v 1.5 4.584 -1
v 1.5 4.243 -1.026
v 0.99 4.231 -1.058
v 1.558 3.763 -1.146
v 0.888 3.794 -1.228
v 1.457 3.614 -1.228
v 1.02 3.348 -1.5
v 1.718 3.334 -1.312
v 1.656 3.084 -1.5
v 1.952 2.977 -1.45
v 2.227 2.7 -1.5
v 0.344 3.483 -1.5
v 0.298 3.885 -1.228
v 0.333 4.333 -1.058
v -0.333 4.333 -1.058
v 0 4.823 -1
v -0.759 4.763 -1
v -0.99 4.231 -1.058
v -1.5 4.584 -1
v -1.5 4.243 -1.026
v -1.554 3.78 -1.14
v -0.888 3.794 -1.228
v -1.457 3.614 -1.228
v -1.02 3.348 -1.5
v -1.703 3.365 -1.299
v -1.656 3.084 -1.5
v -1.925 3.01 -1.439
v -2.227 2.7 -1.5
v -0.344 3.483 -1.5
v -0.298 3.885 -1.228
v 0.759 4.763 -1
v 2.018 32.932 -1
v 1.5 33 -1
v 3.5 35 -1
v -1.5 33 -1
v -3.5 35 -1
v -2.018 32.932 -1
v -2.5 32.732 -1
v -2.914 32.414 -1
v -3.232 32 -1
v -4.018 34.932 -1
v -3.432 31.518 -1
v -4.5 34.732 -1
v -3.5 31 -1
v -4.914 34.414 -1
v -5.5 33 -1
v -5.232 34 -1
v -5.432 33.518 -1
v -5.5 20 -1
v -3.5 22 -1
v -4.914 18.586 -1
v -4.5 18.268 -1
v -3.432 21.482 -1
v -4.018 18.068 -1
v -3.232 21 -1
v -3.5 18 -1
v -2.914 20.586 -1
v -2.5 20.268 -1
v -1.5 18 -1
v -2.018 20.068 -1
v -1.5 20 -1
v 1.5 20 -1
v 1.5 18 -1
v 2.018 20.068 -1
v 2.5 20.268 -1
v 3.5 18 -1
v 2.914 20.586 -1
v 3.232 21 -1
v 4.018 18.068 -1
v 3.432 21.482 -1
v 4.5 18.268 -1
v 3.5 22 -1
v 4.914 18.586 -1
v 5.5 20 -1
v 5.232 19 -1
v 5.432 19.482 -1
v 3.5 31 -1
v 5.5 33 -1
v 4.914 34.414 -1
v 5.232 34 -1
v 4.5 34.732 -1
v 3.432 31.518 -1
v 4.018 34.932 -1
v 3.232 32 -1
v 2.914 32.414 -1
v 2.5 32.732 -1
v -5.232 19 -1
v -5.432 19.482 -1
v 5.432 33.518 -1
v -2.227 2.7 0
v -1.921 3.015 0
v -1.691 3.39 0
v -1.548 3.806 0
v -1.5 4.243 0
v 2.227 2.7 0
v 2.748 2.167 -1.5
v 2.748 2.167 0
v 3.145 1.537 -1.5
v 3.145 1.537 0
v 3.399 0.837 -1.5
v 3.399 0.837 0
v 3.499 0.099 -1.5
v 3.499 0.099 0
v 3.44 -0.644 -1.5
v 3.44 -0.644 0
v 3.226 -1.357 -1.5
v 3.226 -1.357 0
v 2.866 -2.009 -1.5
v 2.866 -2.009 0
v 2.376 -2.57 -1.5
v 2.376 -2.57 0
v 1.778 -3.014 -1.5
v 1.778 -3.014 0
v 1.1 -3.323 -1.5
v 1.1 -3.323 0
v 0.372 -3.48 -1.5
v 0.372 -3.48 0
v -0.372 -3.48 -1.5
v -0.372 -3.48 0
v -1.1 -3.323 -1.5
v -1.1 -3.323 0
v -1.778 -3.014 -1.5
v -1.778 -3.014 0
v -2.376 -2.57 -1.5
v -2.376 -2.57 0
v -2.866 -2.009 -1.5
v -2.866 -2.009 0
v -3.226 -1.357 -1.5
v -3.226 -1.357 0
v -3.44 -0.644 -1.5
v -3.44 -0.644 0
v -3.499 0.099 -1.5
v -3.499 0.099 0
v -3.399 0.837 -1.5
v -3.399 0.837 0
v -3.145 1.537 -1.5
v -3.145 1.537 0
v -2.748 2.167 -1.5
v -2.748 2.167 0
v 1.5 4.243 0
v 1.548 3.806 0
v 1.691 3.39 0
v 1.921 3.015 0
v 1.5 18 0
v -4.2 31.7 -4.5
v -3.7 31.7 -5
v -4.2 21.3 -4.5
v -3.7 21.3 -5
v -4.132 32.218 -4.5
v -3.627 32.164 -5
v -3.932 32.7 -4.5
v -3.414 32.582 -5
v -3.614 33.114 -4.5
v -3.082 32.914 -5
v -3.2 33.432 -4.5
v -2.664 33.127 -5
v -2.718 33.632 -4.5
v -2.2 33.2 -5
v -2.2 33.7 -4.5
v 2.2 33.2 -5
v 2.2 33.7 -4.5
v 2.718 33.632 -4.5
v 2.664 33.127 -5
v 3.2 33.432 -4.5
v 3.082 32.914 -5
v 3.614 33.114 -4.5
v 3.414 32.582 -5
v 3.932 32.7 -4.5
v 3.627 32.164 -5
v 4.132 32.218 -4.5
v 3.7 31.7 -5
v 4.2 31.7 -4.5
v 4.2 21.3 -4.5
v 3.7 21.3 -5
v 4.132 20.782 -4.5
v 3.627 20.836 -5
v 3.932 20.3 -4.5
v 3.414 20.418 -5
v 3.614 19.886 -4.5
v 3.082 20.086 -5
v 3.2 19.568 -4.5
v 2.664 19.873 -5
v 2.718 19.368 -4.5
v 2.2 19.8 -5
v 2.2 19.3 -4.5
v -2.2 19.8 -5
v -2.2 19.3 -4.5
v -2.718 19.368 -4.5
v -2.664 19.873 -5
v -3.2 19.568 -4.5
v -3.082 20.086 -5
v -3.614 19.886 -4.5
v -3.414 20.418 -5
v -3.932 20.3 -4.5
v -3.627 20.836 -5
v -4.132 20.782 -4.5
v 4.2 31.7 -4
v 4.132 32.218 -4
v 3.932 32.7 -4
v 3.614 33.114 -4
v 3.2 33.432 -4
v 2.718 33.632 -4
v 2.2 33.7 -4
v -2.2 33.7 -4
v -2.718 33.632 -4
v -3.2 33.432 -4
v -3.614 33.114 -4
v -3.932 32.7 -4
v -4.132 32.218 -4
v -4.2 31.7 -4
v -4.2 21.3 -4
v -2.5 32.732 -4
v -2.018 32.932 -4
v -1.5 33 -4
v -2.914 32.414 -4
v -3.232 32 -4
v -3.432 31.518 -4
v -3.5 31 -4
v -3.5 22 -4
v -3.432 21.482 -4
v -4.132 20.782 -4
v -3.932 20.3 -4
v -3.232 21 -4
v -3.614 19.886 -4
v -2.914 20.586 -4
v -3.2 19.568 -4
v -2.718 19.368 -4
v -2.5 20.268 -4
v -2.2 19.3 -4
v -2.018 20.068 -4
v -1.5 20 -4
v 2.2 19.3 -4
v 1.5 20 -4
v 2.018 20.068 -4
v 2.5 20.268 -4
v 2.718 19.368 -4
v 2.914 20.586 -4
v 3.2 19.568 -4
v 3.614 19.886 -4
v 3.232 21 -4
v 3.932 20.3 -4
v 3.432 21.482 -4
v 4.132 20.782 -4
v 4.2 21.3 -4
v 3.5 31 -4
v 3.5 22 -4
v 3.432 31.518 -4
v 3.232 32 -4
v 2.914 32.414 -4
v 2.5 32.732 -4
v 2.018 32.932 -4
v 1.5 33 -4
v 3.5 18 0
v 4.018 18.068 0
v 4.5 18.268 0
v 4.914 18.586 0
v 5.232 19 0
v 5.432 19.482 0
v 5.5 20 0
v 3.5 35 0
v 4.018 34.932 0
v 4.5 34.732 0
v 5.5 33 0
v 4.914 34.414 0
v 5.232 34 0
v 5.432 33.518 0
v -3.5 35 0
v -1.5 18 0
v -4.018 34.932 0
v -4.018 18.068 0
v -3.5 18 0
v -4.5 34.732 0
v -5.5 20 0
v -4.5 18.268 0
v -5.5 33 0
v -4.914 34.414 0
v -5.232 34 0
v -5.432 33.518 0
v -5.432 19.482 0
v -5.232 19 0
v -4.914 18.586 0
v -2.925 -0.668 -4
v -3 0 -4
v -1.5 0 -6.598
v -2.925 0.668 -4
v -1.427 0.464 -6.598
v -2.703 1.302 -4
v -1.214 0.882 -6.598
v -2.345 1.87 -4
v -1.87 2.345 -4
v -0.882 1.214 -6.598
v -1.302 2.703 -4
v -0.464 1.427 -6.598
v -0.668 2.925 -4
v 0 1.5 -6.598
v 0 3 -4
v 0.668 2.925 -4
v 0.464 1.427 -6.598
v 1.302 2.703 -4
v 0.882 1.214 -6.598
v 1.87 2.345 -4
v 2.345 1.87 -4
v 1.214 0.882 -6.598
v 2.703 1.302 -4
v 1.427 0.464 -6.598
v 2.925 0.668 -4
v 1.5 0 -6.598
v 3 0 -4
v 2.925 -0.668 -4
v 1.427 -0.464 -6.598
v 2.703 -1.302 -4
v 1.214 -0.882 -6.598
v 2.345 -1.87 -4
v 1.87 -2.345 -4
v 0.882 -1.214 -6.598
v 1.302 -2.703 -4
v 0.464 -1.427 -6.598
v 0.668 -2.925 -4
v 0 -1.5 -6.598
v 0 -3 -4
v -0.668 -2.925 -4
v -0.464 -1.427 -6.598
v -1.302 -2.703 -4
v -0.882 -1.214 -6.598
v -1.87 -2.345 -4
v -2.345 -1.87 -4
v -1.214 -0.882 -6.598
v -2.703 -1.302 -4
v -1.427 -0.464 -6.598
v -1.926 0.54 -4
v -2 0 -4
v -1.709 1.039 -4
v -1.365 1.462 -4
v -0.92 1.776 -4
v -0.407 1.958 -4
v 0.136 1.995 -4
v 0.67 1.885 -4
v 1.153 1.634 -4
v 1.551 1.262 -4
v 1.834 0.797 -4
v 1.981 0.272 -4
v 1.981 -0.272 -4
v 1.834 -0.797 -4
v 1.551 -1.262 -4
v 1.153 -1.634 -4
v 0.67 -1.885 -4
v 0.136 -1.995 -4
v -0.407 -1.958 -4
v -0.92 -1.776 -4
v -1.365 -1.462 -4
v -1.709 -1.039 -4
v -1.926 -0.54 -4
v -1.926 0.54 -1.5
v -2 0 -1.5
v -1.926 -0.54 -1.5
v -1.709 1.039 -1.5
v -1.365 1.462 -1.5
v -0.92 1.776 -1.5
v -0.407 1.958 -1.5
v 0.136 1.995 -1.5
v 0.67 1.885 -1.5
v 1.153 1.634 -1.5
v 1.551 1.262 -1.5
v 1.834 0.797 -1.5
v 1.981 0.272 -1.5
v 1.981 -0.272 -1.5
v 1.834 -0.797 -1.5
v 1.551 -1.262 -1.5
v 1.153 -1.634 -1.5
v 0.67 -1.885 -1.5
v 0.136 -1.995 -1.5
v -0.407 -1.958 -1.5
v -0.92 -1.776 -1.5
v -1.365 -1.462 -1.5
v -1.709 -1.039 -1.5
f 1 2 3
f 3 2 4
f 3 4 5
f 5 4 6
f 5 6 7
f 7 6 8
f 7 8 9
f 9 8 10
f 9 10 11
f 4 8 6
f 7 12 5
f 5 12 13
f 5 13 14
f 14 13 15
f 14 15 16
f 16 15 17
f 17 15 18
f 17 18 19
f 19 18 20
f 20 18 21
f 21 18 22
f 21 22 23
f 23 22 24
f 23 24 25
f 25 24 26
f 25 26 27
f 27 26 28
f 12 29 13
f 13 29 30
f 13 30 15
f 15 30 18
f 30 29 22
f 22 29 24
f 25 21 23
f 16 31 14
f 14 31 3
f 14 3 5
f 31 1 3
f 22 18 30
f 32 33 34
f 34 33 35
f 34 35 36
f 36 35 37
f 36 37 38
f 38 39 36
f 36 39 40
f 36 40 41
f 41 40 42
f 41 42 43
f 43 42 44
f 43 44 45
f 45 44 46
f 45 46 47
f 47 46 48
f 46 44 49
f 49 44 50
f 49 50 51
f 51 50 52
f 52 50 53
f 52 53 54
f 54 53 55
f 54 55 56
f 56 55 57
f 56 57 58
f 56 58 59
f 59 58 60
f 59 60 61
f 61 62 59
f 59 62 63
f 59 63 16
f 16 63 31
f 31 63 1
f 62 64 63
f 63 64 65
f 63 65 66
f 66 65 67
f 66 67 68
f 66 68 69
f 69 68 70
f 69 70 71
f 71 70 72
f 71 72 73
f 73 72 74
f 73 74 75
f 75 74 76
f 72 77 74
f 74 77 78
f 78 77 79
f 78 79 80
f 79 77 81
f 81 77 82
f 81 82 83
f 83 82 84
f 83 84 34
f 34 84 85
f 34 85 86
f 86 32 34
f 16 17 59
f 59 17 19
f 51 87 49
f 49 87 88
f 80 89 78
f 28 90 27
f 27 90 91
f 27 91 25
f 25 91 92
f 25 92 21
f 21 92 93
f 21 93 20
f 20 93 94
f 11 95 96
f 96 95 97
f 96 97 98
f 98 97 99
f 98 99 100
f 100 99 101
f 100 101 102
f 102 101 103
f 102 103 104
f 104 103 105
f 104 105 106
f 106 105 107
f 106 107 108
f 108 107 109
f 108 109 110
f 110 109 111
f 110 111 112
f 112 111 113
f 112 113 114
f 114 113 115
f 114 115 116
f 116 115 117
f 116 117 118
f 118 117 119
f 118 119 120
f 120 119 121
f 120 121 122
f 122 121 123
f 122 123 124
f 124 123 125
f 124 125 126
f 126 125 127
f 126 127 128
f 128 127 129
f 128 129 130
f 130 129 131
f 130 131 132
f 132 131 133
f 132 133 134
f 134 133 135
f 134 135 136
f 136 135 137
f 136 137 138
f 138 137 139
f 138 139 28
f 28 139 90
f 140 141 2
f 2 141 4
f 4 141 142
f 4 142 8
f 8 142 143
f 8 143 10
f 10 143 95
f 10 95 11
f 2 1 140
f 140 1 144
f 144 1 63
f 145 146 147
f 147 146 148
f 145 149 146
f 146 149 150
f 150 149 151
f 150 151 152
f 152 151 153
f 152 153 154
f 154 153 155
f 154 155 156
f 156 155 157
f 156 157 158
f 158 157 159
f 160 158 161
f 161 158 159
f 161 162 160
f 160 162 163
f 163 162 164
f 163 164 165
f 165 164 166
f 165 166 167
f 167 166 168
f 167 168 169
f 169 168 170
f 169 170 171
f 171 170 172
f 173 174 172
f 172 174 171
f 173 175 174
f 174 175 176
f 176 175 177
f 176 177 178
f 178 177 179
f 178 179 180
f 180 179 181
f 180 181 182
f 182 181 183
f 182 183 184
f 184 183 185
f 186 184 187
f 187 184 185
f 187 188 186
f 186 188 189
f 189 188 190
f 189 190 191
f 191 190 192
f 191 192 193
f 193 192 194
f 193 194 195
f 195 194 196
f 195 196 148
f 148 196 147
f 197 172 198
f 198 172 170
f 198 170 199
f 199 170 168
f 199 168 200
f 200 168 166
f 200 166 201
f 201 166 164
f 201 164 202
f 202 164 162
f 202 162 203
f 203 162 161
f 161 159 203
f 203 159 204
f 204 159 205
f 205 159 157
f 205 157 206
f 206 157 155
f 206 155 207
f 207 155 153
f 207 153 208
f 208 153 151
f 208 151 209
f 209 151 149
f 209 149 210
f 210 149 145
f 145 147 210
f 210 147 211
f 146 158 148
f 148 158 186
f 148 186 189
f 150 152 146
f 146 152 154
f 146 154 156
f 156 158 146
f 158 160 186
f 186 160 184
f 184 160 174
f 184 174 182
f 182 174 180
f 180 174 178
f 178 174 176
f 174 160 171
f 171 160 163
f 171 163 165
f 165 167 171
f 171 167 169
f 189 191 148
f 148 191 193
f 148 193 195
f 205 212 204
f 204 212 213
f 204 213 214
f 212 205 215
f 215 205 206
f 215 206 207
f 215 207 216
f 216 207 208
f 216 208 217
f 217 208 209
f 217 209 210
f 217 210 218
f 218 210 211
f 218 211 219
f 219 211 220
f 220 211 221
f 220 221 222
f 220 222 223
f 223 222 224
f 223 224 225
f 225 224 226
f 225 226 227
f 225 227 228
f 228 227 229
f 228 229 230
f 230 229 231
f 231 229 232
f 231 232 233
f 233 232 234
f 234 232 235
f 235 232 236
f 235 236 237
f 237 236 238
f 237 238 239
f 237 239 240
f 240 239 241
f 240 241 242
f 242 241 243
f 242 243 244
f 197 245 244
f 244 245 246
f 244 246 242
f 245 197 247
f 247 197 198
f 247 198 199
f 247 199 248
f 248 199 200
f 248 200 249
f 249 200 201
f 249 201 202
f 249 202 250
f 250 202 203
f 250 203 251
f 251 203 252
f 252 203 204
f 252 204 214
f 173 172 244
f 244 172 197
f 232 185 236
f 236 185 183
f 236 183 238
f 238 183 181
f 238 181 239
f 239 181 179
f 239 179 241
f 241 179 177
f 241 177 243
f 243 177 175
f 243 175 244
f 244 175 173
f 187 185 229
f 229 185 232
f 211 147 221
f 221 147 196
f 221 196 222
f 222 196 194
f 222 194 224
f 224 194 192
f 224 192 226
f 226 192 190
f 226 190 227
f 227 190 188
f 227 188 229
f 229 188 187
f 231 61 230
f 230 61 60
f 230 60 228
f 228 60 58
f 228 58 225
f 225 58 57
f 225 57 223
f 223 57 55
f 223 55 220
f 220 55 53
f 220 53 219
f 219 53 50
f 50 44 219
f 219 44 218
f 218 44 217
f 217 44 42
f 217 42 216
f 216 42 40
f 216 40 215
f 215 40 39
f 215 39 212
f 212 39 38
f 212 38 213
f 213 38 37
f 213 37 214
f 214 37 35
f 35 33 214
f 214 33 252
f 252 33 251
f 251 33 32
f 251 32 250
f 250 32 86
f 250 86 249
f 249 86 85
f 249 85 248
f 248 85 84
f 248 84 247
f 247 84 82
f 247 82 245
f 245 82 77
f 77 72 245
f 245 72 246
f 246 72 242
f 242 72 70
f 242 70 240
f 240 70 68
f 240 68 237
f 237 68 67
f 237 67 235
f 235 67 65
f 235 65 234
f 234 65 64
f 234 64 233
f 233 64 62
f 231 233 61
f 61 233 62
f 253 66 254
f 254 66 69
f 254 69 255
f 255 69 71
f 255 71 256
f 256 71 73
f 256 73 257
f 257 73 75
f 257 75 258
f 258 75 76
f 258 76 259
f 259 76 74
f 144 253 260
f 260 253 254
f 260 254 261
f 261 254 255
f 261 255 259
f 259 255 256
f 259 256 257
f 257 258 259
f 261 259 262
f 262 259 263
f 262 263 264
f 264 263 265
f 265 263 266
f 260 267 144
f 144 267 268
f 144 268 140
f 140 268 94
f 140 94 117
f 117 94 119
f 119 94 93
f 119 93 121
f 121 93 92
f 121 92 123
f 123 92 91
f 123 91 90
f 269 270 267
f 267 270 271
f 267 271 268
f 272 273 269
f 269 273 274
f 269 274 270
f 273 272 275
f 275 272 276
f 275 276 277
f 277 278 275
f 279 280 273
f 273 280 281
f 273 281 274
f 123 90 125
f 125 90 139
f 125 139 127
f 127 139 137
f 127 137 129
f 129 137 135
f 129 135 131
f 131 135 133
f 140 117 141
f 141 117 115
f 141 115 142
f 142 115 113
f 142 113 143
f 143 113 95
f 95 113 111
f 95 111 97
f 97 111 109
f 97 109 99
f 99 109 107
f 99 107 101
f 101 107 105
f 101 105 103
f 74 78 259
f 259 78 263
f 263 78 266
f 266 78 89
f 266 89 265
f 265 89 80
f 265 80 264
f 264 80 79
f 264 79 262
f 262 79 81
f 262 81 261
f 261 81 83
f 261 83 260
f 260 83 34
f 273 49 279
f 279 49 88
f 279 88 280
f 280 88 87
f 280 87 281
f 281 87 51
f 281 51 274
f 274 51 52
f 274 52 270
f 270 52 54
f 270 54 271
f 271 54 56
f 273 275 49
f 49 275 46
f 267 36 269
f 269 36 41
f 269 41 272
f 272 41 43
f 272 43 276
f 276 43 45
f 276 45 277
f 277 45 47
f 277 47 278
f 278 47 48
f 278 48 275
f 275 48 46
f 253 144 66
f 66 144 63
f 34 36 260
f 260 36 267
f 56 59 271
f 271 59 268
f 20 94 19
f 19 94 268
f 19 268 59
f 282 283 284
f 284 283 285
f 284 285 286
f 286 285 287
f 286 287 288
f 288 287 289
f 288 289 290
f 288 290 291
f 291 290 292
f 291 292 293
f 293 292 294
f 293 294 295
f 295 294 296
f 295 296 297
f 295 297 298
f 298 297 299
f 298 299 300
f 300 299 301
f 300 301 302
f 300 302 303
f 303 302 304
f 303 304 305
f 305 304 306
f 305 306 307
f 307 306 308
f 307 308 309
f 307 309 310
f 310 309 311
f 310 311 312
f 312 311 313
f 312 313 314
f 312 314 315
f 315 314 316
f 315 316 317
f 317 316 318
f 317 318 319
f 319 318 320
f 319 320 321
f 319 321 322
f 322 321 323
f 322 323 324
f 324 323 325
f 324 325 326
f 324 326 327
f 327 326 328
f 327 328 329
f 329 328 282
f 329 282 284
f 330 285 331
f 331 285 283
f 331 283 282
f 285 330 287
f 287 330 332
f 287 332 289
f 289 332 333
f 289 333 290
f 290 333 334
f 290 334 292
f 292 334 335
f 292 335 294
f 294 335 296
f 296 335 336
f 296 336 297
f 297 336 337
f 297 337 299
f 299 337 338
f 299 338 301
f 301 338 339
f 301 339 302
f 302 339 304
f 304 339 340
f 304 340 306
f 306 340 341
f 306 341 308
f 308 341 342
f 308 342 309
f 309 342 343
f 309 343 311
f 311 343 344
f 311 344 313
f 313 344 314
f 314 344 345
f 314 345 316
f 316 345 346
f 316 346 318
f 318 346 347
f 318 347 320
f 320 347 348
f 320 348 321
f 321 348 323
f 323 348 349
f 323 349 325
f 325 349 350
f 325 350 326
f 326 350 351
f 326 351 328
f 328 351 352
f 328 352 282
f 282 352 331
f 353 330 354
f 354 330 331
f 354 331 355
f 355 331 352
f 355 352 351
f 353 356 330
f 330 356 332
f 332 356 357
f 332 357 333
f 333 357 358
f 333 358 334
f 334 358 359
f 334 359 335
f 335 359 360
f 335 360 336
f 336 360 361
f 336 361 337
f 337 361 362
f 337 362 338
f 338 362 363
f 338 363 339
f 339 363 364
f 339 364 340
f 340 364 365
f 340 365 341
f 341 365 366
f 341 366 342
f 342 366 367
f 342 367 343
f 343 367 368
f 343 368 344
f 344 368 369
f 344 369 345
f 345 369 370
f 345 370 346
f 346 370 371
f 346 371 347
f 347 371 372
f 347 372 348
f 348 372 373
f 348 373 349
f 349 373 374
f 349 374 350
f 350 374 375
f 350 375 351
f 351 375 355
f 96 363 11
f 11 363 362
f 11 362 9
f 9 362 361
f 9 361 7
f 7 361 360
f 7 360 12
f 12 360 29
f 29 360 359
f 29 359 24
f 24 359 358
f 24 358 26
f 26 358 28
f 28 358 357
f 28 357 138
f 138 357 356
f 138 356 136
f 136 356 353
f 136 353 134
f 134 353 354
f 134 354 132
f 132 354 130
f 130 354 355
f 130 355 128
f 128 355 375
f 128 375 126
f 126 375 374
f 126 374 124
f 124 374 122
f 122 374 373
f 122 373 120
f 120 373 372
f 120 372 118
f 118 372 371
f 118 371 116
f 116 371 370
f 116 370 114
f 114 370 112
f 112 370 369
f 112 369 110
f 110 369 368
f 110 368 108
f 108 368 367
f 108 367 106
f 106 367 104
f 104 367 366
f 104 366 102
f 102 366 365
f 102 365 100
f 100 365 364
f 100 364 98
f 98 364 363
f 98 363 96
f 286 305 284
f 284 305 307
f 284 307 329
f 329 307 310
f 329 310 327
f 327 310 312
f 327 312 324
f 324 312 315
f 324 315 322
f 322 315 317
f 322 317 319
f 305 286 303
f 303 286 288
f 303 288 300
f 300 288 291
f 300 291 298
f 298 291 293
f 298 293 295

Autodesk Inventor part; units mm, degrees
ref_plane "YZ Plane" through (0, 0, 0) normal (1, 0, 0) x (0, 1, 0)
ref_plane "XZ Plane" through (0, 0, 0) normal (0, 1, 0) x (-1, 0, 0)
ref_plane "XY Plane" through (0, 0, 0) normal (0, 0, 1) x (1, 0, 0)
sketch "Sketch1" plane through (0, 0, 0) normal (0, 1, 0) x (-1, 0, 0)
  line L0 (0, 0) -> (3.5, 0)
  line L1 (3.5, 0) -> (3.5, -1.5)
  line L2 (3.5, -1.5) -> (2, -1.5)
  line L3 (2, -1.5) -> (2, -4)
  line L4 (2, -4) -> (3, -4)
  line L5 (3, -4) -> (1.5, -6.5981)
  line L6 (1.5, -6.5981) -> (0, -6.5981)
  line L7 (0, -6.5981) -> (0, 0)
  line L8 (0, -7.9177) -> (0, 1.3196) projected
  dimension "d0" = 3.5
  dimension "d1" = 1.5
  dimension "d3" = 2.5
  dimension "d4" = 2
  dimension "d5" = 1
  dimension "d6" = 1.5
  dimension "d7" = 60
revolve "Revolution1" add sketch "Sketch1" angle 360 about axis through (0, 0, -10) along (0, 0, 1)
sketch "Sketch2" plane through (0, 0, 0) normal (0, 0, 1) x (1, 0, 0)
  circle A0 centre (0, 0) radius 3.5 construction
  line L0 (-1.5, 0) -> (1.5, 0)
  line L1 (1.5, 0) -> (1.5, 18)
  line L2 (1.5, 18) -> (-1.5, 18)
  line L3 (-1.5, 18) -> (-1.5, 0)
  line L4 (-5.5, 18) -> (5.5, 18)
  line L5 (5.5, 18) -> (5.5, 35)
  line L6 (5.5, 35) -> (-5.5, 35)
  line L7 (-5.5, 35) -> (-5.5, 18)
  point P0 (0, 18)
  dimension "d9" = 3
  dimension "d10" = 18
  dimension "d11" = 11
  dimension "d12" = 17
extrude "Extrusion1" add sketch "Sketch2" against normal blind 1
sketch "Sketch3" plane through (0, 0, -1) normal (0, 0, -1) x (-1, 0, 0)
  line L0 (3.5, 33) -> (-3.5, 33)
  line L1 (-3.5, 33) -> (-3.5, 20)
  line L2 (-3.5, 20) -> (3.5, 20)
  line L3 (3.5, 20) -> (3.5, 33)
  line L4 (5.5, 35) -> (-5.5, 35) projected
  line L5 (5.5, 18) -> (5.5, 35) projected
  point P0 (0, 0)
  point P1 (0, 33)
  point P2 (0, 35)
  point P3 (3.5, 26.5)
  point P4 (5.5, 26.5)
  dimension "d15" = 7
  dimension "d16" = 13
extrude "Extrusion2" add sketch "Sketch3" along normal blind 3
sketch "Sketch4" plane through (0, 0, -4) normal (0, 0, -1) x (-1, 0, 0)
  line L0 (-3.5, 33) -> (-3.5, 20) projected
  line L1 (-3.5, 20) -> (3.5, 20) projected
  line L2 (3.5, 20) -> (3.5, 33) projected
  line L3 (3.5, 33) -> (-3.5, 33) projected
  line L4 (4.2, 33.7) -> (4.2, 19.3)
  line L5 (4.2, 19.3) -> (-4.2, 19.3)
  line L6 (-4.2, 19.3) -> (-4.2, 33.7)
  line L7 (-4.2, 33.7) -> (4.2, 33.7)
  point P0 (0, 0)
  dimension "d20" = 0.7
extrude "Extrusion3" add sketch "Sketch4" along normal blind 1 contours L3 L2 L1 L0 | L4 L5 L6 L7
fillet "Fillet1" radius 2 12 edges at (-5.5, 35, -0.5) (-5.5, 18, -0.5) (5.5, 35, -0.5) (5.5, 18, -0.5) (3.5, 20, -2.5) (3.5, 33, -2.5) (-3.5, 33, -2.5) (-3.5, 20, -2.5) (-4.2, 19.3, -4.5) (4.2, 19.3, -4.5) (4.2, 33.7, -4.5) (-4.2, 33.7, -4.5)
chamfer "Chamfer1" distance 0.5 angle 45 8 edges at (-4.2, 26.5, -5) (-3.6142, 33.1142, -5) (0, 33.7, -5) (3.6142, 33.1142, -5) (4.2, 26.5, -5) (3.6142, 19.8858, -5) (0, 19.3, -5) (-3.6142, 19.8858, -5)
fillet "Fillet2" radius 2 3 edges at (1.5, 3.1623, -0.5) (0, 3.5, -1) (-1.5, 3.1623, -0.5)
properties part number "USB-C_cover" material "PC/ABS Plastic"
